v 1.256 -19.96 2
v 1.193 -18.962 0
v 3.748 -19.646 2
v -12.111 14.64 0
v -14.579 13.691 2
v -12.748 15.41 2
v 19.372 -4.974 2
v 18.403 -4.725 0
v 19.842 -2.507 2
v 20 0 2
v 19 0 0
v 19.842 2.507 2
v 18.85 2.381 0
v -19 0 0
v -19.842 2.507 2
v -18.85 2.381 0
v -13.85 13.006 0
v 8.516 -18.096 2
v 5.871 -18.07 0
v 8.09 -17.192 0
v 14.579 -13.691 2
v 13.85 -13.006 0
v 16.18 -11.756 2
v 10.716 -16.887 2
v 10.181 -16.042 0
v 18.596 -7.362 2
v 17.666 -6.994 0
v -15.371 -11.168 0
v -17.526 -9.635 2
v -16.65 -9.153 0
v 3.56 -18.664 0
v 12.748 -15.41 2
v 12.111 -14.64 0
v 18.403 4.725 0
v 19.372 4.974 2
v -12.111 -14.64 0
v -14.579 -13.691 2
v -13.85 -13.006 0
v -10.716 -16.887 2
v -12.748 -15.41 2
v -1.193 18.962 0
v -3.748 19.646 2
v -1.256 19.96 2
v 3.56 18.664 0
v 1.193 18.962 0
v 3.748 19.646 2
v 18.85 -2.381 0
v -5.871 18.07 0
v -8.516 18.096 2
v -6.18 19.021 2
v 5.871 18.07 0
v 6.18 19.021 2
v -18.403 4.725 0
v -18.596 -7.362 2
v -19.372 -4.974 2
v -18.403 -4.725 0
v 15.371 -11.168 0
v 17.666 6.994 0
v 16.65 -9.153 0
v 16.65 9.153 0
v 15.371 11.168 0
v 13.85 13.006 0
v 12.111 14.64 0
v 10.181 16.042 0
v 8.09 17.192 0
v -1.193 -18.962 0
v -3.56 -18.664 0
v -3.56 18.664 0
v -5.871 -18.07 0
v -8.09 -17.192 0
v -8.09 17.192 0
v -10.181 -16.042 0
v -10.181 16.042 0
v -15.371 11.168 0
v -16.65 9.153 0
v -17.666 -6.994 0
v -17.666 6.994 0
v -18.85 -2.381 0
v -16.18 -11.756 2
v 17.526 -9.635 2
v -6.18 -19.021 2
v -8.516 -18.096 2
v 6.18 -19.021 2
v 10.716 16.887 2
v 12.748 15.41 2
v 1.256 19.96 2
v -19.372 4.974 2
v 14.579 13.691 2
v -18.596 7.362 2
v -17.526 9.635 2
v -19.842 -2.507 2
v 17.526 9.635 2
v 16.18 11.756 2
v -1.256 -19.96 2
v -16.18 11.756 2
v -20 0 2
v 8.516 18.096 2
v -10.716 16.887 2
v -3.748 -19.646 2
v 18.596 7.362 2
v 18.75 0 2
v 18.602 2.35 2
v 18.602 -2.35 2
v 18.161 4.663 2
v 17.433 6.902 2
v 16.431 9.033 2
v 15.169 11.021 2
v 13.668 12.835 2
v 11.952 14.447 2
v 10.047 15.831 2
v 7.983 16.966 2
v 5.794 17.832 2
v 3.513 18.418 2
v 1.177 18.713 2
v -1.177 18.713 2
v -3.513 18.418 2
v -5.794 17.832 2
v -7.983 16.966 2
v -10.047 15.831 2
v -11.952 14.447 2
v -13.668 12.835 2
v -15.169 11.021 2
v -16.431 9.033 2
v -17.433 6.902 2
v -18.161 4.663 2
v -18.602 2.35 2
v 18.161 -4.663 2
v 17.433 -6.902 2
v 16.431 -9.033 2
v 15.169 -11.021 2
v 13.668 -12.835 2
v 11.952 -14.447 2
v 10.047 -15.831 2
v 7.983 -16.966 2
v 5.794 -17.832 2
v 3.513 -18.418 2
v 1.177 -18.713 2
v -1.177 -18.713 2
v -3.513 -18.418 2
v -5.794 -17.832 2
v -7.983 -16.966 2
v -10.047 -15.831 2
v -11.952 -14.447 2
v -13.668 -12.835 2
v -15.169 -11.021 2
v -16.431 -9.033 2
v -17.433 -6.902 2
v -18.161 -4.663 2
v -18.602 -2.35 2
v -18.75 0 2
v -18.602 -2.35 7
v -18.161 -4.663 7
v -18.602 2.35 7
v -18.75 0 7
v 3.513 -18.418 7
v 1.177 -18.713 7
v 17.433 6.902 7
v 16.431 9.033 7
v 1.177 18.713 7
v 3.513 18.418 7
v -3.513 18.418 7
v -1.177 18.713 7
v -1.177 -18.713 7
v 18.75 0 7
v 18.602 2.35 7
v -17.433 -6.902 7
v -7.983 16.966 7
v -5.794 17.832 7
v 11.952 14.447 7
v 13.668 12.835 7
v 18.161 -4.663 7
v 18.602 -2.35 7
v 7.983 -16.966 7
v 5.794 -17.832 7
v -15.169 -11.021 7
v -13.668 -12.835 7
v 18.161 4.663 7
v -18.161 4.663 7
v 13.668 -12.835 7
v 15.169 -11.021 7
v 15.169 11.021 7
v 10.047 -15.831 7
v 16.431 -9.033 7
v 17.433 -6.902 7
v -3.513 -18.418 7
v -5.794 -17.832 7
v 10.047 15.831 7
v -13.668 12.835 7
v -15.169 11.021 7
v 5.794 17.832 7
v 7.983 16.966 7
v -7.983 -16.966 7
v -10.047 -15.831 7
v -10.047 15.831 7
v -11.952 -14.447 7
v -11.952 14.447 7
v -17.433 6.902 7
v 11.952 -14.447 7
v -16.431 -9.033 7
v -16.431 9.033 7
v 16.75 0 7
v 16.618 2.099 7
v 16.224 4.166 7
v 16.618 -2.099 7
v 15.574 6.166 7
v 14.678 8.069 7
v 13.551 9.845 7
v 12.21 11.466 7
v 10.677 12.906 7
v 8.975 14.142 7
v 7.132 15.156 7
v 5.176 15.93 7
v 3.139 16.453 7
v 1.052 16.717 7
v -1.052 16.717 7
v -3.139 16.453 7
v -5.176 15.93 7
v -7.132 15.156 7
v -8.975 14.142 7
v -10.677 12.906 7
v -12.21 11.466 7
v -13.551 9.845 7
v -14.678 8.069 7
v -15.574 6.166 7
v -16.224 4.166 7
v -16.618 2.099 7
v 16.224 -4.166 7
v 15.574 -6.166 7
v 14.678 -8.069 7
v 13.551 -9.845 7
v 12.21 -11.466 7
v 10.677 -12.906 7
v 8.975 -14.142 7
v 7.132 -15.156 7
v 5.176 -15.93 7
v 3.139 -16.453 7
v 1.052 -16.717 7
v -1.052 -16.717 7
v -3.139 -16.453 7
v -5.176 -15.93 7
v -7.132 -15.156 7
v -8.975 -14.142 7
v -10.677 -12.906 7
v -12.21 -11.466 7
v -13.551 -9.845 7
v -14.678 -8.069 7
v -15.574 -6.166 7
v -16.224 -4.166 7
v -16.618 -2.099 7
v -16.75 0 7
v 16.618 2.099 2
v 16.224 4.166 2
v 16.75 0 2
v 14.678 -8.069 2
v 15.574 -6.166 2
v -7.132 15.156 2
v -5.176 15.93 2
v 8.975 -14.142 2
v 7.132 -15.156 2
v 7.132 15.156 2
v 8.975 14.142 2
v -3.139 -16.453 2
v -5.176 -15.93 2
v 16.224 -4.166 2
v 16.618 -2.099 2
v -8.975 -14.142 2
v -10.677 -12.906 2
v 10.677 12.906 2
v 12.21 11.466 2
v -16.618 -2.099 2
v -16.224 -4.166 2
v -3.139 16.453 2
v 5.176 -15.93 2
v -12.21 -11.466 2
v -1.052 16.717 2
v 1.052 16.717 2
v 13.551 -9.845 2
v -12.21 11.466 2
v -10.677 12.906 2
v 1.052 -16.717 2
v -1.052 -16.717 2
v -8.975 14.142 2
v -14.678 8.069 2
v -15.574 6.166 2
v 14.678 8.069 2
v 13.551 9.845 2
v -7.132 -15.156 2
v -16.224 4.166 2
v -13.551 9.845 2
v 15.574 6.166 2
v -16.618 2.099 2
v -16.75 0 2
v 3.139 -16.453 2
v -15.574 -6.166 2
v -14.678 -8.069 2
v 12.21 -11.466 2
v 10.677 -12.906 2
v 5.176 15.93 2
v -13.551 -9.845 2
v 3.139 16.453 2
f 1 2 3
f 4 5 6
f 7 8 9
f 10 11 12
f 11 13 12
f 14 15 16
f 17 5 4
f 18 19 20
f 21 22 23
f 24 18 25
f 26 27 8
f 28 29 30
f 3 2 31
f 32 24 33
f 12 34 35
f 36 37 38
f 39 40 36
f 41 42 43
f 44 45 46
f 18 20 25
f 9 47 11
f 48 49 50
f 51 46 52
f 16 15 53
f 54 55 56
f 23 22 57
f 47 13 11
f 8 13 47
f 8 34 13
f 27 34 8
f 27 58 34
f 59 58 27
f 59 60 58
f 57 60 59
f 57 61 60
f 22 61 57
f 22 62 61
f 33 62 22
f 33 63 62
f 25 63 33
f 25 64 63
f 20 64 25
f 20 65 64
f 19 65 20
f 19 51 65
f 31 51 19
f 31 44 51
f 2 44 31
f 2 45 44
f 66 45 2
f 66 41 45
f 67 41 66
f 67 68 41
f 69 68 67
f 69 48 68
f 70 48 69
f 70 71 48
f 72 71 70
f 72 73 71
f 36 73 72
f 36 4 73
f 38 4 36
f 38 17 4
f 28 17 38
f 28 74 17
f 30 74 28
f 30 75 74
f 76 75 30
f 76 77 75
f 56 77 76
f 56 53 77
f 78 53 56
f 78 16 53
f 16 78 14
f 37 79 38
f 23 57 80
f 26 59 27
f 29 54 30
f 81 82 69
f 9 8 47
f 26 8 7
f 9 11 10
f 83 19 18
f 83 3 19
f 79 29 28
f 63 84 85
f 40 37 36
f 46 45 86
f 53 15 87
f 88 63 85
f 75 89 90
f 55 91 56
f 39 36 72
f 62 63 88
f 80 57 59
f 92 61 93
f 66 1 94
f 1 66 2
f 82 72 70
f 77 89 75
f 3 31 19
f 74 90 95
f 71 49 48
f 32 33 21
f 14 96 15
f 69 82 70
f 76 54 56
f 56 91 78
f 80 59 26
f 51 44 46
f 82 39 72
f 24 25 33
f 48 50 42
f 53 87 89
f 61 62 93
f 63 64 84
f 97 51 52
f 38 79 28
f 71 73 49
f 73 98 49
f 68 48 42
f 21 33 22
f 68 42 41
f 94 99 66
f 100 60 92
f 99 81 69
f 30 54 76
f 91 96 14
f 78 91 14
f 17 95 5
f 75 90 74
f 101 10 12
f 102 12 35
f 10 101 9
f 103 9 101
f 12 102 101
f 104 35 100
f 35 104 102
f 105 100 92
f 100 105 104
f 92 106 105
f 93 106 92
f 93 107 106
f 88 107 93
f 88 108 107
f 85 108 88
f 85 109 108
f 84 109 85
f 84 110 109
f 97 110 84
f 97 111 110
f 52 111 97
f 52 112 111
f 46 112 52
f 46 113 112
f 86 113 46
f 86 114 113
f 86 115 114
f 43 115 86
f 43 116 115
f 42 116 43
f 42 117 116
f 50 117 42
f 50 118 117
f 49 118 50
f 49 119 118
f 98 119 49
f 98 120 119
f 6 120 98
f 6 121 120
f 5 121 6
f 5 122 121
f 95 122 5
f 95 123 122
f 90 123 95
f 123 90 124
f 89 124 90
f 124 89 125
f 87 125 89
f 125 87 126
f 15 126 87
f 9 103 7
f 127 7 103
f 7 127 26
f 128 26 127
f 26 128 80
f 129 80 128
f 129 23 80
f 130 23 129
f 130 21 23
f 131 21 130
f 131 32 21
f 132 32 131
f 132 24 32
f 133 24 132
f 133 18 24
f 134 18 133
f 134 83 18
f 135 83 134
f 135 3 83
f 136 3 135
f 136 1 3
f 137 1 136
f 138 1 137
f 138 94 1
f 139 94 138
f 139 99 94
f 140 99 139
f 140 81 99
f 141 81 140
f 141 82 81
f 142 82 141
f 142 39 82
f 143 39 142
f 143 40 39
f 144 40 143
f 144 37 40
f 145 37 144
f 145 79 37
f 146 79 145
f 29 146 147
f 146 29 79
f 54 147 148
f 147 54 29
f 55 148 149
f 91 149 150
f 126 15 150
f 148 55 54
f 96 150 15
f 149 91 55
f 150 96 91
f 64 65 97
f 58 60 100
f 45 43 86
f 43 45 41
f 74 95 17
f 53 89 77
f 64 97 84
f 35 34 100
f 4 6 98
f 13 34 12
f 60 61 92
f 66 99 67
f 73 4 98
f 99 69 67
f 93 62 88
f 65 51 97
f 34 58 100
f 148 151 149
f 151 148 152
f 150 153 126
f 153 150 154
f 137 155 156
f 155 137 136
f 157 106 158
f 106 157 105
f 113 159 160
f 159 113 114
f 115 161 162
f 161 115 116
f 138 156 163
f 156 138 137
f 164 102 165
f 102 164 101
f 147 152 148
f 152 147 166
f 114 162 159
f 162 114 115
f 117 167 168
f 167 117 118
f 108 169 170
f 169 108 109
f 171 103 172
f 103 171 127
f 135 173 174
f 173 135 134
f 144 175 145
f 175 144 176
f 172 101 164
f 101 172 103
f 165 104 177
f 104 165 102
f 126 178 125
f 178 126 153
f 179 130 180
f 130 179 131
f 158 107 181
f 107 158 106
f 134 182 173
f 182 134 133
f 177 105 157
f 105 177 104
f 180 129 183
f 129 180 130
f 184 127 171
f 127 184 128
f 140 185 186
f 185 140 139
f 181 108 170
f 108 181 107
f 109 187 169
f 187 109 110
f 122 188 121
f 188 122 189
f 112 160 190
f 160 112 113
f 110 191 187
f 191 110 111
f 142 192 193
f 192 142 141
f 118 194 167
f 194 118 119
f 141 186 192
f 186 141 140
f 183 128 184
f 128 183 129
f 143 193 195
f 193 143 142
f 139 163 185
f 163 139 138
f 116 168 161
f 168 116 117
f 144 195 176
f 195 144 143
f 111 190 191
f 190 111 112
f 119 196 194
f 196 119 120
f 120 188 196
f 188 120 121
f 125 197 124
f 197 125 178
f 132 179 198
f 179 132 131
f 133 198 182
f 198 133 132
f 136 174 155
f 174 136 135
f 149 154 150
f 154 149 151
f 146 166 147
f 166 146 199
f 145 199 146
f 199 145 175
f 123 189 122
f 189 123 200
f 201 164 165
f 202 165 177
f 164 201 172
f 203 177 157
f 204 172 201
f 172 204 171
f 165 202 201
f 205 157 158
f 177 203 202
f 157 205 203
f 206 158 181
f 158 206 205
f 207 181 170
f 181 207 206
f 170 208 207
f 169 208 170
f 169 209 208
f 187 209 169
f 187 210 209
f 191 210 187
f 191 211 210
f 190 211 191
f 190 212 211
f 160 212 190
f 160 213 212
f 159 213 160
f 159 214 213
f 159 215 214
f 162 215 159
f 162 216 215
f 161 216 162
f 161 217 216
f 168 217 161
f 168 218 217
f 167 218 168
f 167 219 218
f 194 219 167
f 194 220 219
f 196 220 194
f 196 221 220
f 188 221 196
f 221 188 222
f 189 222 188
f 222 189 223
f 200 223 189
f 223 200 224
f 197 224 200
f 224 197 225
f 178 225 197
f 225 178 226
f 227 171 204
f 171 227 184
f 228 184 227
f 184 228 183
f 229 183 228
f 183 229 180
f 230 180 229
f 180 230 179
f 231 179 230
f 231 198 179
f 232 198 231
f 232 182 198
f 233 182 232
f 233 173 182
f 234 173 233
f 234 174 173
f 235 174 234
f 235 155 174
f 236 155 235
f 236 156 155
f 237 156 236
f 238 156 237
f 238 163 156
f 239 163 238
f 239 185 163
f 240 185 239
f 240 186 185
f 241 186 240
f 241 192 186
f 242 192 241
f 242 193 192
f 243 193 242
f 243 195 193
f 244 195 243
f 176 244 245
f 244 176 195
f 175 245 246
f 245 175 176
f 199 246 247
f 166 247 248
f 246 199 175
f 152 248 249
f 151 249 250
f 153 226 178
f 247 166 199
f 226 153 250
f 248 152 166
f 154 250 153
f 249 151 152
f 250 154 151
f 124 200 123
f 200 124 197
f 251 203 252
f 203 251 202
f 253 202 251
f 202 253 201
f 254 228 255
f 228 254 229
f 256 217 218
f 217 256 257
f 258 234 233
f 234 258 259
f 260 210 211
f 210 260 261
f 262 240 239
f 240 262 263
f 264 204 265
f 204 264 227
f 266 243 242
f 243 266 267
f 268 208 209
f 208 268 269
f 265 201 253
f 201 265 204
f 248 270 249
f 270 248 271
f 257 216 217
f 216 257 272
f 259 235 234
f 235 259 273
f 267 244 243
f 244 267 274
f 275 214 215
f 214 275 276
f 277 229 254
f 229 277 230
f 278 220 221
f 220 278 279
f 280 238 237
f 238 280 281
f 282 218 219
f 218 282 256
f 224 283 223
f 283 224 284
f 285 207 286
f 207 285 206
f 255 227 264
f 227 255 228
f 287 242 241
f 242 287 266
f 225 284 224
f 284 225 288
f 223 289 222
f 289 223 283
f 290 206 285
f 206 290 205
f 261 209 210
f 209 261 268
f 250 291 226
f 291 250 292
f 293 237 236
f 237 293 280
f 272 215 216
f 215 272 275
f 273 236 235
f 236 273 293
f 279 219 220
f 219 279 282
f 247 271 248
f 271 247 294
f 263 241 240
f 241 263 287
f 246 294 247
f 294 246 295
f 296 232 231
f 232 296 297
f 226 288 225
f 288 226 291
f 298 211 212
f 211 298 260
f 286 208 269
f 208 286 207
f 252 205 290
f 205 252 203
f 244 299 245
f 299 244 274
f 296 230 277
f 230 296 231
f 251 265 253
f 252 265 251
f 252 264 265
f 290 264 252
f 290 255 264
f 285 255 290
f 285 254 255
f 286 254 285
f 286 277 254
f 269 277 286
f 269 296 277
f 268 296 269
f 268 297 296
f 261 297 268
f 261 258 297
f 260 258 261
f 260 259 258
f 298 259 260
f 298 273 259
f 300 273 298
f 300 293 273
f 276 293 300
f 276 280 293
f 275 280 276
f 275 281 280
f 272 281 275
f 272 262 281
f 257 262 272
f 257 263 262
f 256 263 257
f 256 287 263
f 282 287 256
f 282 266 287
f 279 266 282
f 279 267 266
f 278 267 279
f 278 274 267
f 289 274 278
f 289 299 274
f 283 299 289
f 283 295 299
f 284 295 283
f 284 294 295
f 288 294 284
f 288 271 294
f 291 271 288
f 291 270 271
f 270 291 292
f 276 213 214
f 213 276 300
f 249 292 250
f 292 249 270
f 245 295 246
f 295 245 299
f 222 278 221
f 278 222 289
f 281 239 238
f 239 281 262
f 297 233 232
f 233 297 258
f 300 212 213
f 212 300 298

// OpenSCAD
// foot for folding ikea table

module foot() {
  difference() {
    union() {
      cylinder(2,d1=38,d2=40);
      cylinder(7,d=37.5);
    }
    translate([0,0,2]) cylinder(5,d=33.5);
  }
}

$fn=50;
foot();
